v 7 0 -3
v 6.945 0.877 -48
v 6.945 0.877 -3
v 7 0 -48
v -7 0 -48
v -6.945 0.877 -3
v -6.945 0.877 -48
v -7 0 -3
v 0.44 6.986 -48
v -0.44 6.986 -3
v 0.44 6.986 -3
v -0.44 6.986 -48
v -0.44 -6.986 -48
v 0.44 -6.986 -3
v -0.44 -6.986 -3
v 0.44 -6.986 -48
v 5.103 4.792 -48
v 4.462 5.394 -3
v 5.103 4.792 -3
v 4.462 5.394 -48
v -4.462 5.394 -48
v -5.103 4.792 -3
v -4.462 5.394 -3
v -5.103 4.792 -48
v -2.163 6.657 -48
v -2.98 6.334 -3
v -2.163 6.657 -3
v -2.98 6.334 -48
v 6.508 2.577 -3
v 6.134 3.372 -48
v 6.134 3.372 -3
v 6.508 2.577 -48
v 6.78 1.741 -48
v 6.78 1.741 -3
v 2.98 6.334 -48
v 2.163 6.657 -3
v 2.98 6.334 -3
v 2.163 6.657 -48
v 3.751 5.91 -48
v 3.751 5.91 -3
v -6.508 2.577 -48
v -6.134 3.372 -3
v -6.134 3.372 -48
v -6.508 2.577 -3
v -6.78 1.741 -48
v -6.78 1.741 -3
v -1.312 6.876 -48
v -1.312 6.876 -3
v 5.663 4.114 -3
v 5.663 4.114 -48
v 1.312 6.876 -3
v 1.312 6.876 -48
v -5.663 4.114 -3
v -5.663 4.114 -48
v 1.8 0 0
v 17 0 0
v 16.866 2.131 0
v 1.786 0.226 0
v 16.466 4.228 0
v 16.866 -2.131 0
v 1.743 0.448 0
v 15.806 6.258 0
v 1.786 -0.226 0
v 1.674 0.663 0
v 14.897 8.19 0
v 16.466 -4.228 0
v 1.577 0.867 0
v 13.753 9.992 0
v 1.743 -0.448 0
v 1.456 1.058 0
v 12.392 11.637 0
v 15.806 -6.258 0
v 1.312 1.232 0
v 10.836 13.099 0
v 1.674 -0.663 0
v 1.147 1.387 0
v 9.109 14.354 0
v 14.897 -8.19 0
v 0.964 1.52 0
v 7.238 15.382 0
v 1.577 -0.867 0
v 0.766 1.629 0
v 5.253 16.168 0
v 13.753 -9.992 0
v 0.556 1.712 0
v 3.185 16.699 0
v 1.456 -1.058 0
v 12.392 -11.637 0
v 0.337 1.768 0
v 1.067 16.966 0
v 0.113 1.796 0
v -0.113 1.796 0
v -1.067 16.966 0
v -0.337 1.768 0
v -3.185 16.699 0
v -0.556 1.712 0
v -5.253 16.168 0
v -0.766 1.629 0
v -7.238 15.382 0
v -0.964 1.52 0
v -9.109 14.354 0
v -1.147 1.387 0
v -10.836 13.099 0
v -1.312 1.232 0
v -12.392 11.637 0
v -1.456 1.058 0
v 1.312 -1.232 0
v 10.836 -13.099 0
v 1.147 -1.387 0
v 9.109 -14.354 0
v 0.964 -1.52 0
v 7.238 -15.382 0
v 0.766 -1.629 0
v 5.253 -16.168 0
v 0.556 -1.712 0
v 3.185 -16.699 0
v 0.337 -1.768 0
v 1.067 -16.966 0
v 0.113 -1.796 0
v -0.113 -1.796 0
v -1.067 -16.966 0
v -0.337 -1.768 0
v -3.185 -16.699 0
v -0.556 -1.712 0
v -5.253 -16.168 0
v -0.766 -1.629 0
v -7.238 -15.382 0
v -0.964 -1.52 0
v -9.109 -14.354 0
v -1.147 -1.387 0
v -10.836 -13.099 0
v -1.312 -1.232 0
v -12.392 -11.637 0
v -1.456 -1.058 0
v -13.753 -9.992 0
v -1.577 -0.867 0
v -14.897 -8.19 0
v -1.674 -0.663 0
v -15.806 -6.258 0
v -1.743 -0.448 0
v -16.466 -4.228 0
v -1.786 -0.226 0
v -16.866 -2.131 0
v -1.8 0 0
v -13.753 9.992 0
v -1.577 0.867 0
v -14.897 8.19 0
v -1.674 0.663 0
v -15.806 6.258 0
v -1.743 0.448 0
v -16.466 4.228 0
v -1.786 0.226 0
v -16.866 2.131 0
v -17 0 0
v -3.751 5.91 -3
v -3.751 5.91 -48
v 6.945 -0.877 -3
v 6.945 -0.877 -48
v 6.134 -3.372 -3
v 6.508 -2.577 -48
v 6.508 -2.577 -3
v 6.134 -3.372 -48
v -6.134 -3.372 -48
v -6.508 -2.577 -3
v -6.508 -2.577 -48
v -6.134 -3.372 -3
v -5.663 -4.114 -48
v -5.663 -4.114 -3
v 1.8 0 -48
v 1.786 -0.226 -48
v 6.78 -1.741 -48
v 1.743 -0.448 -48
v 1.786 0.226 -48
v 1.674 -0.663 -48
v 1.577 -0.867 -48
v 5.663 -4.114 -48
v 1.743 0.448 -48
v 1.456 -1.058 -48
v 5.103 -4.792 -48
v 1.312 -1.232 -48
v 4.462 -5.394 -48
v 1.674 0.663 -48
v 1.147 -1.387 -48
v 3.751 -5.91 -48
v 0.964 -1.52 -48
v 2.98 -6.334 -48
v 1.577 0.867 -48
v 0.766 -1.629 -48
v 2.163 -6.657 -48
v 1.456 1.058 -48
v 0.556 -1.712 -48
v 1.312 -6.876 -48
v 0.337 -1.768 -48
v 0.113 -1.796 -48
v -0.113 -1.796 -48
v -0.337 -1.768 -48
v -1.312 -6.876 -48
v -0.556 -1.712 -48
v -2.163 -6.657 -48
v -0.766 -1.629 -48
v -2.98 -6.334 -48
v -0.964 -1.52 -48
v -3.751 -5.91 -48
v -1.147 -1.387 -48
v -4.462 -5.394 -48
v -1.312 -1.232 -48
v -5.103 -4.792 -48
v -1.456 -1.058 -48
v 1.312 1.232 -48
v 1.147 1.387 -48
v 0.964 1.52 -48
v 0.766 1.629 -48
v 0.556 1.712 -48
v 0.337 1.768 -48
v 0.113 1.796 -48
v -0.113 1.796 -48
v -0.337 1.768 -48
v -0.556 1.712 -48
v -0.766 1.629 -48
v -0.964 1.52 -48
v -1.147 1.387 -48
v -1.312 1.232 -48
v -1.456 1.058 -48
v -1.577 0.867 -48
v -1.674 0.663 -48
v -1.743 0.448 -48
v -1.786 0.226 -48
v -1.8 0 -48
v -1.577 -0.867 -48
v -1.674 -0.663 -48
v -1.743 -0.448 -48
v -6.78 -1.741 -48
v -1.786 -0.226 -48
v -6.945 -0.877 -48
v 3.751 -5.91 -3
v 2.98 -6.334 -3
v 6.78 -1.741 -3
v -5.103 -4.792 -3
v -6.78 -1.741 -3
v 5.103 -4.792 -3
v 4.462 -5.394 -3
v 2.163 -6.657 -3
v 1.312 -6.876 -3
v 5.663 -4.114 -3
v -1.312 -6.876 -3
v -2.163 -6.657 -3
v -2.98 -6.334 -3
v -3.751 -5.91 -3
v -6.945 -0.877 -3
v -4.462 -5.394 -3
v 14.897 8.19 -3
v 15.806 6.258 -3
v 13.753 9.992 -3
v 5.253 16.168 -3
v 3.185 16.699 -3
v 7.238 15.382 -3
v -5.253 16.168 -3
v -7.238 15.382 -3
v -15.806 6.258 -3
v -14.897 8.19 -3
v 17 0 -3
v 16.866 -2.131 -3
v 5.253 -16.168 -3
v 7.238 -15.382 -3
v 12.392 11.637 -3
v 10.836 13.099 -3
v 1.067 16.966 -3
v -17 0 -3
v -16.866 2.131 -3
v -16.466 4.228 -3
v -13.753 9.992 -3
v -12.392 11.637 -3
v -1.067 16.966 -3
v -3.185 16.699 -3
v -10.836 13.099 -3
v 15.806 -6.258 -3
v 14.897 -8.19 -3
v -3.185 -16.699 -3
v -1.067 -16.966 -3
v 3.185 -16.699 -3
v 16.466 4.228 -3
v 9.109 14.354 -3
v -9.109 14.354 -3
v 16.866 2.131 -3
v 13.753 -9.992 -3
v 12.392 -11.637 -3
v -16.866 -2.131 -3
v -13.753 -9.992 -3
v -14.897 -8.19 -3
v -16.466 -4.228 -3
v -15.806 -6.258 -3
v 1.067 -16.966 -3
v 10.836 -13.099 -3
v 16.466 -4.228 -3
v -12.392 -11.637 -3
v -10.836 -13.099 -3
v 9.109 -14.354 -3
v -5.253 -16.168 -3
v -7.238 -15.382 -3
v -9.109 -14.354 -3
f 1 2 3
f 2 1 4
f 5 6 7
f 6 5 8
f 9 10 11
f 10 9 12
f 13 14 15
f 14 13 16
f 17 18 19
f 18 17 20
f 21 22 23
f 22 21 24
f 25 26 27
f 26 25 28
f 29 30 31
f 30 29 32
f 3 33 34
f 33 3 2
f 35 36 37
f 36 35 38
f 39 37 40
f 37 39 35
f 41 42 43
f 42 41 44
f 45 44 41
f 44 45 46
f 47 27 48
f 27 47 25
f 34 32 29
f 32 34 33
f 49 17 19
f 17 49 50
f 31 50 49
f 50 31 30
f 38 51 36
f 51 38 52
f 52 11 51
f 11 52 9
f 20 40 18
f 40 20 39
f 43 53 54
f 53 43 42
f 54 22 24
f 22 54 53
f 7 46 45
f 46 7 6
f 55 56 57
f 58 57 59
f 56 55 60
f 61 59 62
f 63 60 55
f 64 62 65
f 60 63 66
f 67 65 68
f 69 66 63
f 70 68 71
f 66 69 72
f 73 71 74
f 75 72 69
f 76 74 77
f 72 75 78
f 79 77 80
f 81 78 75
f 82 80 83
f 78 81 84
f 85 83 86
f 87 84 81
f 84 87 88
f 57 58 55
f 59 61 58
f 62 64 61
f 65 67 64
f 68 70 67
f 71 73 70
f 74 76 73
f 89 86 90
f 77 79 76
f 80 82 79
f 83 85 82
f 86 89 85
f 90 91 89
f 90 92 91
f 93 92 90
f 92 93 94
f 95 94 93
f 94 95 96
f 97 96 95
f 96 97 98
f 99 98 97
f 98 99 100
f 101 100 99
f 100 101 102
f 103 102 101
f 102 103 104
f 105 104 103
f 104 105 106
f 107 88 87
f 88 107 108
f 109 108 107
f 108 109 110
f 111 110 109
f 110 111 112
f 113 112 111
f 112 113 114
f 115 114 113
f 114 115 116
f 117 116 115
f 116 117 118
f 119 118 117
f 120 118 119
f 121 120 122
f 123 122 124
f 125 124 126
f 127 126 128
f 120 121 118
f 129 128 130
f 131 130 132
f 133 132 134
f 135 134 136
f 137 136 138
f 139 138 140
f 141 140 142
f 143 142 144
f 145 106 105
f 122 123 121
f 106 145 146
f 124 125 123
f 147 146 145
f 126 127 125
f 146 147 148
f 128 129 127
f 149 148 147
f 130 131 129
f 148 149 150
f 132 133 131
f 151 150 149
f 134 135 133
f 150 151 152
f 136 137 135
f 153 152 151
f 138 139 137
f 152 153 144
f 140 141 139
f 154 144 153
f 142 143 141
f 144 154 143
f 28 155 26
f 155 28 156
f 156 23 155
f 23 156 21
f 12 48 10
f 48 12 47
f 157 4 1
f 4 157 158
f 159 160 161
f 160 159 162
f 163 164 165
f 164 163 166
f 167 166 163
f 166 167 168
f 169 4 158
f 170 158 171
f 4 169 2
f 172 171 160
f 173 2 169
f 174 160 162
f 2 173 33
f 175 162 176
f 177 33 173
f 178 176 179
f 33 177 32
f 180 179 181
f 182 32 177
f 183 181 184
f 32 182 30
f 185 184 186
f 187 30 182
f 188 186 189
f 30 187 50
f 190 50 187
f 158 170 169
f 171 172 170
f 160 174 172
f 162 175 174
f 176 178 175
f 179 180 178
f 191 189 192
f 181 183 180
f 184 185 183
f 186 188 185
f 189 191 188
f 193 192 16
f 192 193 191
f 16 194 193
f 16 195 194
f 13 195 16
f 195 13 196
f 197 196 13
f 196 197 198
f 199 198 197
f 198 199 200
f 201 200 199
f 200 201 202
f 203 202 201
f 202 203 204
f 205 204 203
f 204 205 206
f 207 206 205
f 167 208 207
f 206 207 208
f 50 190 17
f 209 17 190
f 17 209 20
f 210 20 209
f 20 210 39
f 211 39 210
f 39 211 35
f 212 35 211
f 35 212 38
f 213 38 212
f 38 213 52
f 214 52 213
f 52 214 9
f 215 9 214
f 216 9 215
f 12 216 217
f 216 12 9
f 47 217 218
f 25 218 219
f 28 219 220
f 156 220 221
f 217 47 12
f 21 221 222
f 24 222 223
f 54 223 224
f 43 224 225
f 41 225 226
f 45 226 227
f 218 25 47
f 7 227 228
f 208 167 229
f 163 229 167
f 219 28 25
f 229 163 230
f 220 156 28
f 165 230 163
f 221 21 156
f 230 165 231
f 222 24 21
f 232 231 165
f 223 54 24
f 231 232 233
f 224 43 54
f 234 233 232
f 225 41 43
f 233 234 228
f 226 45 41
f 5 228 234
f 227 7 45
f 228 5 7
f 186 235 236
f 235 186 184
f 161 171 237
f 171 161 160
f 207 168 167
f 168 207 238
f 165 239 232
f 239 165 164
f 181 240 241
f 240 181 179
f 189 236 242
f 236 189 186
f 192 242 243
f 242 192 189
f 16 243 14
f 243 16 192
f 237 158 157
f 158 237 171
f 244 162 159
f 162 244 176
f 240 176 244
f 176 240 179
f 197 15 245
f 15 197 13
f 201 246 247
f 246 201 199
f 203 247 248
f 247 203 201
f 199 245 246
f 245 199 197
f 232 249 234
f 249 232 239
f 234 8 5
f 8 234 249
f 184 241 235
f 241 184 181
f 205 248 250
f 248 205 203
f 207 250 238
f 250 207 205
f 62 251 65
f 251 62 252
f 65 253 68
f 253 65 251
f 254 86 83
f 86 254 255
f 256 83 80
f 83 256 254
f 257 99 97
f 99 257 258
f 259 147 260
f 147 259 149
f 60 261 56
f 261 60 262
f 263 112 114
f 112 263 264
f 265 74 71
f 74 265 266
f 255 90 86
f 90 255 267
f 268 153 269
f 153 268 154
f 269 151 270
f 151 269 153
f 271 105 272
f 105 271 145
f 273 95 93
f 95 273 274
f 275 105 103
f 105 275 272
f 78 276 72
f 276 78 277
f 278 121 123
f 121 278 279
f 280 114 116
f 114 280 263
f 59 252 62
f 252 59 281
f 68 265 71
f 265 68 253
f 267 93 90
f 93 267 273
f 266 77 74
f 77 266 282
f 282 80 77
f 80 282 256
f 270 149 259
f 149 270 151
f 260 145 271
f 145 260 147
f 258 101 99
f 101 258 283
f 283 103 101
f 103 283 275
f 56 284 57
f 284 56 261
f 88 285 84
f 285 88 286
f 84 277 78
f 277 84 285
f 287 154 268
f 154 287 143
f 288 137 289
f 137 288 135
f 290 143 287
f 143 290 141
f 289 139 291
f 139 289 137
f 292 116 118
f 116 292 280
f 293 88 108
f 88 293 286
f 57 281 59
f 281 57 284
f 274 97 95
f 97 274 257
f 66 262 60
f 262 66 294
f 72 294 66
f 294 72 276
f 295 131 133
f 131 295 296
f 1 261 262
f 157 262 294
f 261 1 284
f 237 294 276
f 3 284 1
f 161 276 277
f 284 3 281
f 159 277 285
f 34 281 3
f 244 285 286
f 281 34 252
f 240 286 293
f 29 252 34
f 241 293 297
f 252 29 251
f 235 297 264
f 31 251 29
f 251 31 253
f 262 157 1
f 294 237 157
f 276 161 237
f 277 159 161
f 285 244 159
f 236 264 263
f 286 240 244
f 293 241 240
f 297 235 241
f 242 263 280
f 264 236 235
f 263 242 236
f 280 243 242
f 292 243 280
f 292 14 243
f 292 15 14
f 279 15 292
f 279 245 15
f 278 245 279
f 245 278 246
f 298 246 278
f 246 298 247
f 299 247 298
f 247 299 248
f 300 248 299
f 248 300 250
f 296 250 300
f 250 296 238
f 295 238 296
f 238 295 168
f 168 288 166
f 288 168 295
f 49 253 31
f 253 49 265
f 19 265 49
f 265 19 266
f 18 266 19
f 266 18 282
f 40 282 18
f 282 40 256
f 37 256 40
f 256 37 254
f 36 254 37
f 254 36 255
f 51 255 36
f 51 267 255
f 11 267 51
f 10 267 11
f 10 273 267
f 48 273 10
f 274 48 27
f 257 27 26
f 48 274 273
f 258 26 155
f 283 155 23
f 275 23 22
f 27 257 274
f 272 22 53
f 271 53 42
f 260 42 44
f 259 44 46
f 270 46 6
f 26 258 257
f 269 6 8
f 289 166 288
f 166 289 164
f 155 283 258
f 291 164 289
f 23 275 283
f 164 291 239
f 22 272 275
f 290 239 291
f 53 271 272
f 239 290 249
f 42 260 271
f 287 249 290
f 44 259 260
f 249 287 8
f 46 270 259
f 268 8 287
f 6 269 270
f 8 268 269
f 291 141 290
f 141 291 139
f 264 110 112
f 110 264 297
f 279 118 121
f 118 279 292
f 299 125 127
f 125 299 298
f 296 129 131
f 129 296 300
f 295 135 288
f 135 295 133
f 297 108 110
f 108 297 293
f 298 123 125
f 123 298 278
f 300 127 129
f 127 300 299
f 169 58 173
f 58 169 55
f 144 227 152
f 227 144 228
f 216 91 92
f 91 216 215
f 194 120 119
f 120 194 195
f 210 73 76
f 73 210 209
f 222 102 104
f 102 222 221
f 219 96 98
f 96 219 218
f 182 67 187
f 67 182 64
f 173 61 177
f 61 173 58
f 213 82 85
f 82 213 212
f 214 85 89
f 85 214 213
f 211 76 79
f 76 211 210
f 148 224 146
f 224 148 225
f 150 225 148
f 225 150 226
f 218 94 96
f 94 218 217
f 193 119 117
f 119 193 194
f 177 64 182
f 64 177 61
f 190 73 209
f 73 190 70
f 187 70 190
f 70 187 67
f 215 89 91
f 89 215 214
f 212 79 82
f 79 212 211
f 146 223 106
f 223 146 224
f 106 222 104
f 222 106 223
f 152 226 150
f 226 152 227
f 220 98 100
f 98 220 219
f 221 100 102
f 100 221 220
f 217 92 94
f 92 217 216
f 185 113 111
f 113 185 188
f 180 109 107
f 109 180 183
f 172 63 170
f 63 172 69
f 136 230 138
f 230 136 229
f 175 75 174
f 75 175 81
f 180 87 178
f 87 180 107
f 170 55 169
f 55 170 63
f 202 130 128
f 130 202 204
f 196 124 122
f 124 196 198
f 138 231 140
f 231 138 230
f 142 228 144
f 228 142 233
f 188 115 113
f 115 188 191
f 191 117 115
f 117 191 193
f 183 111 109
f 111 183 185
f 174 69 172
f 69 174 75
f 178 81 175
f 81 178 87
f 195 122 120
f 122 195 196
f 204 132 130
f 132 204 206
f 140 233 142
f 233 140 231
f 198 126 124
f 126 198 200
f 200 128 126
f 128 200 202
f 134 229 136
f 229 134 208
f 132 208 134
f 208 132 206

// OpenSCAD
$fn = 50;


difference() {
	union() {
		translate(v = [0, 0, -48.0000000000]) {
			cylinder(h = 48, r = 7.0000000000);
		}
		translate(v = [0, 0, -3.0000000000]) {
			cylinder(h = 3, r = 17.0000000000);
		}
	}
	union() {
		#translate(v = [0, 0, -48]) {
			cylinder(h = 48, r = 1.8000000000);
		}
	}
}
